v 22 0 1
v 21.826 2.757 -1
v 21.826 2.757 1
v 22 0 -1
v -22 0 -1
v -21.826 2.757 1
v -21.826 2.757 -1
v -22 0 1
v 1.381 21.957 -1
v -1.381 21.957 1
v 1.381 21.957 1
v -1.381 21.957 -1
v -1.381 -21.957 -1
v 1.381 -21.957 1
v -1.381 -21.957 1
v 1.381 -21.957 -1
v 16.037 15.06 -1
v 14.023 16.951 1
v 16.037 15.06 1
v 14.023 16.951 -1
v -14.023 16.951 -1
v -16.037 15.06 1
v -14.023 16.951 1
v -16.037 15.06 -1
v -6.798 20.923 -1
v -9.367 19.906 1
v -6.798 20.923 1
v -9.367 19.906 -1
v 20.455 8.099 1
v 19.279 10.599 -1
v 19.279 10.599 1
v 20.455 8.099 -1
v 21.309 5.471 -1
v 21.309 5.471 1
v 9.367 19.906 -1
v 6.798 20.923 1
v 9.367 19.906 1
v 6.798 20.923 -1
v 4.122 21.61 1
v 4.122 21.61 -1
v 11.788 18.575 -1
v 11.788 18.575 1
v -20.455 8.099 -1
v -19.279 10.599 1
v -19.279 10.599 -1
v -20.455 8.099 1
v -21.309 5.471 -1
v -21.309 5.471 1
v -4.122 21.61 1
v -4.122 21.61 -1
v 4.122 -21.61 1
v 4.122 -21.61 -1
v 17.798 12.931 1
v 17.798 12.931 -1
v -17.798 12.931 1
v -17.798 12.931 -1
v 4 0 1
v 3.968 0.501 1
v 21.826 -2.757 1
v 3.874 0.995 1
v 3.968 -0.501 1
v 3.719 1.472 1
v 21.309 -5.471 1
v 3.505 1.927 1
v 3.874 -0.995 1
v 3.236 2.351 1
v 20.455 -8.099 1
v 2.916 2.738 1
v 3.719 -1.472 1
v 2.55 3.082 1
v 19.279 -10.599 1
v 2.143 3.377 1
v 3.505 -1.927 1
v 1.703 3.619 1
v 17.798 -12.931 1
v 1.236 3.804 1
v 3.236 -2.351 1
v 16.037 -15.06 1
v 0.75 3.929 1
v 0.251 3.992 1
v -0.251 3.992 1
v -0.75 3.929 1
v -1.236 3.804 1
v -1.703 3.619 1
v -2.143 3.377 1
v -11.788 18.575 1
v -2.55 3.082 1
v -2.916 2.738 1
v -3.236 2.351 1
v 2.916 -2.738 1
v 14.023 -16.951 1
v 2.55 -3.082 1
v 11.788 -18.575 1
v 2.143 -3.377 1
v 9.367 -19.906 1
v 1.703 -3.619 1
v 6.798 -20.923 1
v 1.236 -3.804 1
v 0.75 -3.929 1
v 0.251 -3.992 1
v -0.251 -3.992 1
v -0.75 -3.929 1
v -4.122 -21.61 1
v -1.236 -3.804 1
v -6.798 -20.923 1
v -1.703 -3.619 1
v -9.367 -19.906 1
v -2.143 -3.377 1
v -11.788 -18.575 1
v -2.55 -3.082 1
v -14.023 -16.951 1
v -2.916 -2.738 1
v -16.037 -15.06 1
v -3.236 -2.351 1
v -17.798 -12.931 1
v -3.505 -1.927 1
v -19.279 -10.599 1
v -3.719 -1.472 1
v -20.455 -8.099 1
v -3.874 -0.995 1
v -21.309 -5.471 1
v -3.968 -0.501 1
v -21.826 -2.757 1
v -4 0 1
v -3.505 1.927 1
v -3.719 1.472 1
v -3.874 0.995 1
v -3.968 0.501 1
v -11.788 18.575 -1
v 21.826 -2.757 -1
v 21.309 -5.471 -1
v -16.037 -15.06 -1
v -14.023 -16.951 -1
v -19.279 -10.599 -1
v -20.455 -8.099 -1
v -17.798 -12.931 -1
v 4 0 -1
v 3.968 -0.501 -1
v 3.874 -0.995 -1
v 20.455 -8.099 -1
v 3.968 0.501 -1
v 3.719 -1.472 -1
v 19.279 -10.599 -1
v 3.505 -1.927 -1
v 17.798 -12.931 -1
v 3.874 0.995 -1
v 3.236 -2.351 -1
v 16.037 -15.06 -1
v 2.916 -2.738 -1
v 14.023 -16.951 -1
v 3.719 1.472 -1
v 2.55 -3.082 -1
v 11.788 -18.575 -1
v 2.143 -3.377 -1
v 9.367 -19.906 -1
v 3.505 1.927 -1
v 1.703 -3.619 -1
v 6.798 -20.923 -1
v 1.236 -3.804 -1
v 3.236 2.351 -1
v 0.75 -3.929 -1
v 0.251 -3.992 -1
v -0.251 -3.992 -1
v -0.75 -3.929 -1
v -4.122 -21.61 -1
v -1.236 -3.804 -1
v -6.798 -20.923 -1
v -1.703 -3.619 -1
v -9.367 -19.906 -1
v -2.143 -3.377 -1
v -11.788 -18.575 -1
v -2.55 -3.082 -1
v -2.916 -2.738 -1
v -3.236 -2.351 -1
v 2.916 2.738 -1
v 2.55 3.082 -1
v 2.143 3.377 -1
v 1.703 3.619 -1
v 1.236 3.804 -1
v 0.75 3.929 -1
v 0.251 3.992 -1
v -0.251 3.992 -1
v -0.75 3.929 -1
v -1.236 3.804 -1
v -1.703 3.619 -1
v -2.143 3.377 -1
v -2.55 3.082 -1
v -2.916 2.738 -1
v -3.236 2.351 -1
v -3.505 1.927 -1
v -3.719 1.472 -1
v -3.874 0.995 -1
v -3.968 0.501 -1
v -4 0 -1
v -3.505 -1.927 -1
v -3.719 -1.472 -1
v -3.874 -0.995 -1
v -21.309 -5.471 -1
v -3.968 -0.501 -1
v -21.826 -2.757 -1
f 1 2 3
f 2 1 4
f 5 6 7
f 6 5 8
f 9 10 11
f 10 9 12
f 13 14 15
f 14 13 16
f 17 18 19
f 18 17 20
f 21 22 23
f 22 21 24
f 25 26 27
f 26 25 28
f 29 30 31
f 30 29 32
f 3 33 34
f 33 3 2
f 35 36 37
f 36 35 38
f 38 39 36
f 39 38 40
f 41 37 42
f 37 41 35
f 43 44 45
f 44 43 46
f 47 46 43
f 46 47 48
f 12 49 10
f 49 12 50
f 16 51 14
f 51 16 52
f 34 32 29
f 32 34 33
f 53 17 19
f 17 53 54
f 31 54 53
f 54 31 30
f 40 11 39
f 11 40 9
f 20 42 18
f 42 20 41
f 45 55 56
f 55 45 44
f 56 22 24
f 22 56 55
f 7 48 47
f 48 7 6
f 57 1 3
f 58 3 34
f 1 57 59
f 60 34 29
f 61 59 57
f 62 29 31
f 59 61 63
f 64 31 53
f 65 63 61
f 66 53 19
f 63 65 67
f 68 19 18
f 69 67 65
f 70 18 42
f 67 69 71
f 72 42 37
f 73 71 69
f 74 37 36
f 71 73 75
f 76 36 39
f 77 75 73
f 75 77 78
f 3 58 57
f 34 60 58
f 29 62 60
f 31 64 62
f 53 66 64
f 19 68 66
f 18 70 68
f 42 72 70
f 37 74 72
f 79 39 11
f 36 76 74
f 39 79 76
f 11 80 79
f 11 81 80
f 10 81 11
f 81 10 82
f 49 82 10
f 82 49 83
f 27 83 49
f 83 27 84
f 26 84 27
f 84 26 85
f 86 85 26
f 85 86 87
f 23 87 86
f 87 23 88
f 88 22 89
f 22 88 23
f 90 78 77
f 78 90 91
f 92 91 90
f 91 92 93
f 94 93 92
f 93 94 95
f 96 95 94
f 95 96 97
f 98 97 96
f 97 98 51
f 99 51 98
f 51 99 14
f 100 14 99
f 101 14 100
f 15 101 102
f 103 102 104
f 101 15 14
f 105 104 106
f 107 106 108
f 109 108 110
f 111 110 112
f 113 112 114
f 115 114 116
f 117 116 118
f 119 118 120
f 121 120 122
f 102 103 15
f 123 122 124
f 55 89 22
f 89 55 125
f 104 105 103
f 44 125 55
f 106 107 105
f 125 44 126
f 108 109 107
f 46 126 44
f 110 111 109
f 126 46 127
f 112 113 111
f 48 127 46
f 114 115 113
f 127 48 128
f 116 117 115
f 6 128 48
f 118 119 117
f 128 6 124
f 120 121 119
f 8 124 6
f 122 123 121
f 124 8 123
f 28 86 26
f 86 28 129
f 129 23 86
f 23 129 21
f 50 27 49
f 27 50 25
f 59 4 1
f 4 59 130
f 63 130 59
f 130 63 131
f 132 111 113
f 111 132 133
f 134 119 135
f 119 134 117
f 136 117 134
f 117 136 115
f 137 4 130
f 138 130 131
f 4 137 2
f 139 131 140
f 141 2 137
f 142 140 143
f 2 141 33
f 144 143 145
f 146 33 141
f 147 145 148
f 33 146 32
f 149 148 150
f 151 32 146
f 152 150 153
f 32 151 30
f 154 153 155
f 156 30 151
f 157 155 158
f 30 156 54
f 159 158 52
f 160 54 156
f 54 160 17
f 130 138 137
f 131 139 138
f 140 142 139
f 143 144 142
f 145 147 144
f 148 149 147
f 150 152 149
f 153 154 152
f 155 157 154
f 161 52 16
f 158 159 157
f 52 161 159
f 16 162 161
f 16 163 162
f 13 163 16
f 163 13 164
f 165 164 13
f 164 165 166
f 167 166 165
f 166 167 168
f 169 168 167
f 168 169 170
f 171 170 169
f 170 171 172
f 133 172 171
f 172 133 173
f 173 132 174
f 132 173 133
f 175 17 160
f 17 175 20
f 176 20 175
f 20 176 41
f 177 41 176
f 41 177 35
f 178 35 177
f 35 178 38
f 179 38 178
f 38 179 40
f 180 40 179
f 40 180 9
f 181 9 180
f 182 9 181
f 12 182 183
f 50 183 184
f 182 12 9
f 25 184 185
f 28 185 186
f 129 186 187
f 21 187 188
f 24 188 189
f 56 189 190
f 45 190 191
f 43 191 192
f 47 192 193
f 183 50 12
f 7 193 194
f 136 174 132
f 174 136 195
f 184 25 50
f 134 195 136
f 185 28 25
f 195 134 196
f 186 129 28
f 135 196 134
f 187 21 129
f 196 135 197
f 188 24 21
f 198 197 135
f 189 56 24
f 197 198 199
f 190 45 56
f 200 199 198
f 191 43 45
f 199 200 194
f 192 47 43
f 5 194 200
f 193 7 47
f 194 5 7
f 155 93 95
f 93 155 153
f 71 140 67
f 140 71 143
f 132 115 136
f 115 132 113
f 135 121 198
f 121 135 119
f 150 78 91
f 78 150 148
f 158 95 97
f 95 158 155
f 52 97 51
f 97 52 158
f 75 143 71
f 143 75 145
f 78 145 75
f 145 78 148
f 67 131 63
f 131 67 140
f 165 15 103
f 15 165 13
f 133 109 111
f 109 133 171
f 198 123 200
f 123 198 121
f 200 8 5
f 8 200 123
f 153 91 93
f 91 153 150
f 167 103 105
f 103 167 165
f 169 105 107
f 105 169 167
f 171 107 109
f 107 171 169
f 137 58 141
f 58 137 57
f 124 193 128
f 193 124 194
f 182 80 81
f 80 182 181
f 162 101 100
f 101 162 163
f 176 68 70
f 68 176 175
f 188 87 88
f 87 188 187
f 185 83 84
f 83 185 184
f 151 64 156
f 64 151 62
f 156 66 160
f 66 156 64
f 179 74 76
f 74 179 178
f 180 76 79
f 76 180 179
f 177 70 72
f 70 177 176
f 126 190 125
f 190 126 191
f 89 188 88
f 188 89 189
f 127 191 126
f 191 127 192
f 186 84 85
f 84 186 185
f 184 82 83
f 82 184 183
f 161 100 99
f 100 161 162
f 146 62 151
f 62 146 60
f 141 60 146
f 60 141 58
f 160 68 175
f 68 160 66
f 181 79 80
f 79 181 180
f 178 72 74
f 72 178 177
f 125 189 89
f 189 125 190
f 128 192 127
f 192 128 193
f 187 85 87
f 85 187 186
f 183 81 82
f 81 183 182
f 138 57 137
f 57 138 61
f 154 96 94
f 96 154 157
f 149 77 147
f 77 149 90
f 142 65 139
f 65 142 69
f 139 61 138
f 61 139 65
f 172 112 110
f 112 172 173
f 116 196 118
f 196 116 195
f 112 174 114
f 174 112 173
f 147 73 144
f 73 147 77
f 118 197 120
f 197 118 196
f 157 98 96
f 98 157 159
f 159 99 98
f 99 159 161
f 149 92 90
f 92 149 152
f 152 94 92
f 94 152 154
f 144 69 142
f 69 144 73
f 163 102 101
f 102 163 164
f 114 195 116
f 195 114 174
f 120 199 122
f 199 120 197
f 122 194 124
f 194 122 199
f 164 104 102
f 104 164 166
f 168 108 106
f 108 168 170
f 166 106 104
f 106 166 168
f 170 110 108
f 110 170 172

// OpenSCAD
$fn = 50;


difference() {
	union() {
		translate(v = [0, 0, -1.0000000000]) {
			cylinder(h = 2, r = 22.0000000000);
		}
	}
	union() {
		translate(v = [0, 0, -100.0000000000]) {
			cylinder(h = 200, r = 4);
		}
	}
}
